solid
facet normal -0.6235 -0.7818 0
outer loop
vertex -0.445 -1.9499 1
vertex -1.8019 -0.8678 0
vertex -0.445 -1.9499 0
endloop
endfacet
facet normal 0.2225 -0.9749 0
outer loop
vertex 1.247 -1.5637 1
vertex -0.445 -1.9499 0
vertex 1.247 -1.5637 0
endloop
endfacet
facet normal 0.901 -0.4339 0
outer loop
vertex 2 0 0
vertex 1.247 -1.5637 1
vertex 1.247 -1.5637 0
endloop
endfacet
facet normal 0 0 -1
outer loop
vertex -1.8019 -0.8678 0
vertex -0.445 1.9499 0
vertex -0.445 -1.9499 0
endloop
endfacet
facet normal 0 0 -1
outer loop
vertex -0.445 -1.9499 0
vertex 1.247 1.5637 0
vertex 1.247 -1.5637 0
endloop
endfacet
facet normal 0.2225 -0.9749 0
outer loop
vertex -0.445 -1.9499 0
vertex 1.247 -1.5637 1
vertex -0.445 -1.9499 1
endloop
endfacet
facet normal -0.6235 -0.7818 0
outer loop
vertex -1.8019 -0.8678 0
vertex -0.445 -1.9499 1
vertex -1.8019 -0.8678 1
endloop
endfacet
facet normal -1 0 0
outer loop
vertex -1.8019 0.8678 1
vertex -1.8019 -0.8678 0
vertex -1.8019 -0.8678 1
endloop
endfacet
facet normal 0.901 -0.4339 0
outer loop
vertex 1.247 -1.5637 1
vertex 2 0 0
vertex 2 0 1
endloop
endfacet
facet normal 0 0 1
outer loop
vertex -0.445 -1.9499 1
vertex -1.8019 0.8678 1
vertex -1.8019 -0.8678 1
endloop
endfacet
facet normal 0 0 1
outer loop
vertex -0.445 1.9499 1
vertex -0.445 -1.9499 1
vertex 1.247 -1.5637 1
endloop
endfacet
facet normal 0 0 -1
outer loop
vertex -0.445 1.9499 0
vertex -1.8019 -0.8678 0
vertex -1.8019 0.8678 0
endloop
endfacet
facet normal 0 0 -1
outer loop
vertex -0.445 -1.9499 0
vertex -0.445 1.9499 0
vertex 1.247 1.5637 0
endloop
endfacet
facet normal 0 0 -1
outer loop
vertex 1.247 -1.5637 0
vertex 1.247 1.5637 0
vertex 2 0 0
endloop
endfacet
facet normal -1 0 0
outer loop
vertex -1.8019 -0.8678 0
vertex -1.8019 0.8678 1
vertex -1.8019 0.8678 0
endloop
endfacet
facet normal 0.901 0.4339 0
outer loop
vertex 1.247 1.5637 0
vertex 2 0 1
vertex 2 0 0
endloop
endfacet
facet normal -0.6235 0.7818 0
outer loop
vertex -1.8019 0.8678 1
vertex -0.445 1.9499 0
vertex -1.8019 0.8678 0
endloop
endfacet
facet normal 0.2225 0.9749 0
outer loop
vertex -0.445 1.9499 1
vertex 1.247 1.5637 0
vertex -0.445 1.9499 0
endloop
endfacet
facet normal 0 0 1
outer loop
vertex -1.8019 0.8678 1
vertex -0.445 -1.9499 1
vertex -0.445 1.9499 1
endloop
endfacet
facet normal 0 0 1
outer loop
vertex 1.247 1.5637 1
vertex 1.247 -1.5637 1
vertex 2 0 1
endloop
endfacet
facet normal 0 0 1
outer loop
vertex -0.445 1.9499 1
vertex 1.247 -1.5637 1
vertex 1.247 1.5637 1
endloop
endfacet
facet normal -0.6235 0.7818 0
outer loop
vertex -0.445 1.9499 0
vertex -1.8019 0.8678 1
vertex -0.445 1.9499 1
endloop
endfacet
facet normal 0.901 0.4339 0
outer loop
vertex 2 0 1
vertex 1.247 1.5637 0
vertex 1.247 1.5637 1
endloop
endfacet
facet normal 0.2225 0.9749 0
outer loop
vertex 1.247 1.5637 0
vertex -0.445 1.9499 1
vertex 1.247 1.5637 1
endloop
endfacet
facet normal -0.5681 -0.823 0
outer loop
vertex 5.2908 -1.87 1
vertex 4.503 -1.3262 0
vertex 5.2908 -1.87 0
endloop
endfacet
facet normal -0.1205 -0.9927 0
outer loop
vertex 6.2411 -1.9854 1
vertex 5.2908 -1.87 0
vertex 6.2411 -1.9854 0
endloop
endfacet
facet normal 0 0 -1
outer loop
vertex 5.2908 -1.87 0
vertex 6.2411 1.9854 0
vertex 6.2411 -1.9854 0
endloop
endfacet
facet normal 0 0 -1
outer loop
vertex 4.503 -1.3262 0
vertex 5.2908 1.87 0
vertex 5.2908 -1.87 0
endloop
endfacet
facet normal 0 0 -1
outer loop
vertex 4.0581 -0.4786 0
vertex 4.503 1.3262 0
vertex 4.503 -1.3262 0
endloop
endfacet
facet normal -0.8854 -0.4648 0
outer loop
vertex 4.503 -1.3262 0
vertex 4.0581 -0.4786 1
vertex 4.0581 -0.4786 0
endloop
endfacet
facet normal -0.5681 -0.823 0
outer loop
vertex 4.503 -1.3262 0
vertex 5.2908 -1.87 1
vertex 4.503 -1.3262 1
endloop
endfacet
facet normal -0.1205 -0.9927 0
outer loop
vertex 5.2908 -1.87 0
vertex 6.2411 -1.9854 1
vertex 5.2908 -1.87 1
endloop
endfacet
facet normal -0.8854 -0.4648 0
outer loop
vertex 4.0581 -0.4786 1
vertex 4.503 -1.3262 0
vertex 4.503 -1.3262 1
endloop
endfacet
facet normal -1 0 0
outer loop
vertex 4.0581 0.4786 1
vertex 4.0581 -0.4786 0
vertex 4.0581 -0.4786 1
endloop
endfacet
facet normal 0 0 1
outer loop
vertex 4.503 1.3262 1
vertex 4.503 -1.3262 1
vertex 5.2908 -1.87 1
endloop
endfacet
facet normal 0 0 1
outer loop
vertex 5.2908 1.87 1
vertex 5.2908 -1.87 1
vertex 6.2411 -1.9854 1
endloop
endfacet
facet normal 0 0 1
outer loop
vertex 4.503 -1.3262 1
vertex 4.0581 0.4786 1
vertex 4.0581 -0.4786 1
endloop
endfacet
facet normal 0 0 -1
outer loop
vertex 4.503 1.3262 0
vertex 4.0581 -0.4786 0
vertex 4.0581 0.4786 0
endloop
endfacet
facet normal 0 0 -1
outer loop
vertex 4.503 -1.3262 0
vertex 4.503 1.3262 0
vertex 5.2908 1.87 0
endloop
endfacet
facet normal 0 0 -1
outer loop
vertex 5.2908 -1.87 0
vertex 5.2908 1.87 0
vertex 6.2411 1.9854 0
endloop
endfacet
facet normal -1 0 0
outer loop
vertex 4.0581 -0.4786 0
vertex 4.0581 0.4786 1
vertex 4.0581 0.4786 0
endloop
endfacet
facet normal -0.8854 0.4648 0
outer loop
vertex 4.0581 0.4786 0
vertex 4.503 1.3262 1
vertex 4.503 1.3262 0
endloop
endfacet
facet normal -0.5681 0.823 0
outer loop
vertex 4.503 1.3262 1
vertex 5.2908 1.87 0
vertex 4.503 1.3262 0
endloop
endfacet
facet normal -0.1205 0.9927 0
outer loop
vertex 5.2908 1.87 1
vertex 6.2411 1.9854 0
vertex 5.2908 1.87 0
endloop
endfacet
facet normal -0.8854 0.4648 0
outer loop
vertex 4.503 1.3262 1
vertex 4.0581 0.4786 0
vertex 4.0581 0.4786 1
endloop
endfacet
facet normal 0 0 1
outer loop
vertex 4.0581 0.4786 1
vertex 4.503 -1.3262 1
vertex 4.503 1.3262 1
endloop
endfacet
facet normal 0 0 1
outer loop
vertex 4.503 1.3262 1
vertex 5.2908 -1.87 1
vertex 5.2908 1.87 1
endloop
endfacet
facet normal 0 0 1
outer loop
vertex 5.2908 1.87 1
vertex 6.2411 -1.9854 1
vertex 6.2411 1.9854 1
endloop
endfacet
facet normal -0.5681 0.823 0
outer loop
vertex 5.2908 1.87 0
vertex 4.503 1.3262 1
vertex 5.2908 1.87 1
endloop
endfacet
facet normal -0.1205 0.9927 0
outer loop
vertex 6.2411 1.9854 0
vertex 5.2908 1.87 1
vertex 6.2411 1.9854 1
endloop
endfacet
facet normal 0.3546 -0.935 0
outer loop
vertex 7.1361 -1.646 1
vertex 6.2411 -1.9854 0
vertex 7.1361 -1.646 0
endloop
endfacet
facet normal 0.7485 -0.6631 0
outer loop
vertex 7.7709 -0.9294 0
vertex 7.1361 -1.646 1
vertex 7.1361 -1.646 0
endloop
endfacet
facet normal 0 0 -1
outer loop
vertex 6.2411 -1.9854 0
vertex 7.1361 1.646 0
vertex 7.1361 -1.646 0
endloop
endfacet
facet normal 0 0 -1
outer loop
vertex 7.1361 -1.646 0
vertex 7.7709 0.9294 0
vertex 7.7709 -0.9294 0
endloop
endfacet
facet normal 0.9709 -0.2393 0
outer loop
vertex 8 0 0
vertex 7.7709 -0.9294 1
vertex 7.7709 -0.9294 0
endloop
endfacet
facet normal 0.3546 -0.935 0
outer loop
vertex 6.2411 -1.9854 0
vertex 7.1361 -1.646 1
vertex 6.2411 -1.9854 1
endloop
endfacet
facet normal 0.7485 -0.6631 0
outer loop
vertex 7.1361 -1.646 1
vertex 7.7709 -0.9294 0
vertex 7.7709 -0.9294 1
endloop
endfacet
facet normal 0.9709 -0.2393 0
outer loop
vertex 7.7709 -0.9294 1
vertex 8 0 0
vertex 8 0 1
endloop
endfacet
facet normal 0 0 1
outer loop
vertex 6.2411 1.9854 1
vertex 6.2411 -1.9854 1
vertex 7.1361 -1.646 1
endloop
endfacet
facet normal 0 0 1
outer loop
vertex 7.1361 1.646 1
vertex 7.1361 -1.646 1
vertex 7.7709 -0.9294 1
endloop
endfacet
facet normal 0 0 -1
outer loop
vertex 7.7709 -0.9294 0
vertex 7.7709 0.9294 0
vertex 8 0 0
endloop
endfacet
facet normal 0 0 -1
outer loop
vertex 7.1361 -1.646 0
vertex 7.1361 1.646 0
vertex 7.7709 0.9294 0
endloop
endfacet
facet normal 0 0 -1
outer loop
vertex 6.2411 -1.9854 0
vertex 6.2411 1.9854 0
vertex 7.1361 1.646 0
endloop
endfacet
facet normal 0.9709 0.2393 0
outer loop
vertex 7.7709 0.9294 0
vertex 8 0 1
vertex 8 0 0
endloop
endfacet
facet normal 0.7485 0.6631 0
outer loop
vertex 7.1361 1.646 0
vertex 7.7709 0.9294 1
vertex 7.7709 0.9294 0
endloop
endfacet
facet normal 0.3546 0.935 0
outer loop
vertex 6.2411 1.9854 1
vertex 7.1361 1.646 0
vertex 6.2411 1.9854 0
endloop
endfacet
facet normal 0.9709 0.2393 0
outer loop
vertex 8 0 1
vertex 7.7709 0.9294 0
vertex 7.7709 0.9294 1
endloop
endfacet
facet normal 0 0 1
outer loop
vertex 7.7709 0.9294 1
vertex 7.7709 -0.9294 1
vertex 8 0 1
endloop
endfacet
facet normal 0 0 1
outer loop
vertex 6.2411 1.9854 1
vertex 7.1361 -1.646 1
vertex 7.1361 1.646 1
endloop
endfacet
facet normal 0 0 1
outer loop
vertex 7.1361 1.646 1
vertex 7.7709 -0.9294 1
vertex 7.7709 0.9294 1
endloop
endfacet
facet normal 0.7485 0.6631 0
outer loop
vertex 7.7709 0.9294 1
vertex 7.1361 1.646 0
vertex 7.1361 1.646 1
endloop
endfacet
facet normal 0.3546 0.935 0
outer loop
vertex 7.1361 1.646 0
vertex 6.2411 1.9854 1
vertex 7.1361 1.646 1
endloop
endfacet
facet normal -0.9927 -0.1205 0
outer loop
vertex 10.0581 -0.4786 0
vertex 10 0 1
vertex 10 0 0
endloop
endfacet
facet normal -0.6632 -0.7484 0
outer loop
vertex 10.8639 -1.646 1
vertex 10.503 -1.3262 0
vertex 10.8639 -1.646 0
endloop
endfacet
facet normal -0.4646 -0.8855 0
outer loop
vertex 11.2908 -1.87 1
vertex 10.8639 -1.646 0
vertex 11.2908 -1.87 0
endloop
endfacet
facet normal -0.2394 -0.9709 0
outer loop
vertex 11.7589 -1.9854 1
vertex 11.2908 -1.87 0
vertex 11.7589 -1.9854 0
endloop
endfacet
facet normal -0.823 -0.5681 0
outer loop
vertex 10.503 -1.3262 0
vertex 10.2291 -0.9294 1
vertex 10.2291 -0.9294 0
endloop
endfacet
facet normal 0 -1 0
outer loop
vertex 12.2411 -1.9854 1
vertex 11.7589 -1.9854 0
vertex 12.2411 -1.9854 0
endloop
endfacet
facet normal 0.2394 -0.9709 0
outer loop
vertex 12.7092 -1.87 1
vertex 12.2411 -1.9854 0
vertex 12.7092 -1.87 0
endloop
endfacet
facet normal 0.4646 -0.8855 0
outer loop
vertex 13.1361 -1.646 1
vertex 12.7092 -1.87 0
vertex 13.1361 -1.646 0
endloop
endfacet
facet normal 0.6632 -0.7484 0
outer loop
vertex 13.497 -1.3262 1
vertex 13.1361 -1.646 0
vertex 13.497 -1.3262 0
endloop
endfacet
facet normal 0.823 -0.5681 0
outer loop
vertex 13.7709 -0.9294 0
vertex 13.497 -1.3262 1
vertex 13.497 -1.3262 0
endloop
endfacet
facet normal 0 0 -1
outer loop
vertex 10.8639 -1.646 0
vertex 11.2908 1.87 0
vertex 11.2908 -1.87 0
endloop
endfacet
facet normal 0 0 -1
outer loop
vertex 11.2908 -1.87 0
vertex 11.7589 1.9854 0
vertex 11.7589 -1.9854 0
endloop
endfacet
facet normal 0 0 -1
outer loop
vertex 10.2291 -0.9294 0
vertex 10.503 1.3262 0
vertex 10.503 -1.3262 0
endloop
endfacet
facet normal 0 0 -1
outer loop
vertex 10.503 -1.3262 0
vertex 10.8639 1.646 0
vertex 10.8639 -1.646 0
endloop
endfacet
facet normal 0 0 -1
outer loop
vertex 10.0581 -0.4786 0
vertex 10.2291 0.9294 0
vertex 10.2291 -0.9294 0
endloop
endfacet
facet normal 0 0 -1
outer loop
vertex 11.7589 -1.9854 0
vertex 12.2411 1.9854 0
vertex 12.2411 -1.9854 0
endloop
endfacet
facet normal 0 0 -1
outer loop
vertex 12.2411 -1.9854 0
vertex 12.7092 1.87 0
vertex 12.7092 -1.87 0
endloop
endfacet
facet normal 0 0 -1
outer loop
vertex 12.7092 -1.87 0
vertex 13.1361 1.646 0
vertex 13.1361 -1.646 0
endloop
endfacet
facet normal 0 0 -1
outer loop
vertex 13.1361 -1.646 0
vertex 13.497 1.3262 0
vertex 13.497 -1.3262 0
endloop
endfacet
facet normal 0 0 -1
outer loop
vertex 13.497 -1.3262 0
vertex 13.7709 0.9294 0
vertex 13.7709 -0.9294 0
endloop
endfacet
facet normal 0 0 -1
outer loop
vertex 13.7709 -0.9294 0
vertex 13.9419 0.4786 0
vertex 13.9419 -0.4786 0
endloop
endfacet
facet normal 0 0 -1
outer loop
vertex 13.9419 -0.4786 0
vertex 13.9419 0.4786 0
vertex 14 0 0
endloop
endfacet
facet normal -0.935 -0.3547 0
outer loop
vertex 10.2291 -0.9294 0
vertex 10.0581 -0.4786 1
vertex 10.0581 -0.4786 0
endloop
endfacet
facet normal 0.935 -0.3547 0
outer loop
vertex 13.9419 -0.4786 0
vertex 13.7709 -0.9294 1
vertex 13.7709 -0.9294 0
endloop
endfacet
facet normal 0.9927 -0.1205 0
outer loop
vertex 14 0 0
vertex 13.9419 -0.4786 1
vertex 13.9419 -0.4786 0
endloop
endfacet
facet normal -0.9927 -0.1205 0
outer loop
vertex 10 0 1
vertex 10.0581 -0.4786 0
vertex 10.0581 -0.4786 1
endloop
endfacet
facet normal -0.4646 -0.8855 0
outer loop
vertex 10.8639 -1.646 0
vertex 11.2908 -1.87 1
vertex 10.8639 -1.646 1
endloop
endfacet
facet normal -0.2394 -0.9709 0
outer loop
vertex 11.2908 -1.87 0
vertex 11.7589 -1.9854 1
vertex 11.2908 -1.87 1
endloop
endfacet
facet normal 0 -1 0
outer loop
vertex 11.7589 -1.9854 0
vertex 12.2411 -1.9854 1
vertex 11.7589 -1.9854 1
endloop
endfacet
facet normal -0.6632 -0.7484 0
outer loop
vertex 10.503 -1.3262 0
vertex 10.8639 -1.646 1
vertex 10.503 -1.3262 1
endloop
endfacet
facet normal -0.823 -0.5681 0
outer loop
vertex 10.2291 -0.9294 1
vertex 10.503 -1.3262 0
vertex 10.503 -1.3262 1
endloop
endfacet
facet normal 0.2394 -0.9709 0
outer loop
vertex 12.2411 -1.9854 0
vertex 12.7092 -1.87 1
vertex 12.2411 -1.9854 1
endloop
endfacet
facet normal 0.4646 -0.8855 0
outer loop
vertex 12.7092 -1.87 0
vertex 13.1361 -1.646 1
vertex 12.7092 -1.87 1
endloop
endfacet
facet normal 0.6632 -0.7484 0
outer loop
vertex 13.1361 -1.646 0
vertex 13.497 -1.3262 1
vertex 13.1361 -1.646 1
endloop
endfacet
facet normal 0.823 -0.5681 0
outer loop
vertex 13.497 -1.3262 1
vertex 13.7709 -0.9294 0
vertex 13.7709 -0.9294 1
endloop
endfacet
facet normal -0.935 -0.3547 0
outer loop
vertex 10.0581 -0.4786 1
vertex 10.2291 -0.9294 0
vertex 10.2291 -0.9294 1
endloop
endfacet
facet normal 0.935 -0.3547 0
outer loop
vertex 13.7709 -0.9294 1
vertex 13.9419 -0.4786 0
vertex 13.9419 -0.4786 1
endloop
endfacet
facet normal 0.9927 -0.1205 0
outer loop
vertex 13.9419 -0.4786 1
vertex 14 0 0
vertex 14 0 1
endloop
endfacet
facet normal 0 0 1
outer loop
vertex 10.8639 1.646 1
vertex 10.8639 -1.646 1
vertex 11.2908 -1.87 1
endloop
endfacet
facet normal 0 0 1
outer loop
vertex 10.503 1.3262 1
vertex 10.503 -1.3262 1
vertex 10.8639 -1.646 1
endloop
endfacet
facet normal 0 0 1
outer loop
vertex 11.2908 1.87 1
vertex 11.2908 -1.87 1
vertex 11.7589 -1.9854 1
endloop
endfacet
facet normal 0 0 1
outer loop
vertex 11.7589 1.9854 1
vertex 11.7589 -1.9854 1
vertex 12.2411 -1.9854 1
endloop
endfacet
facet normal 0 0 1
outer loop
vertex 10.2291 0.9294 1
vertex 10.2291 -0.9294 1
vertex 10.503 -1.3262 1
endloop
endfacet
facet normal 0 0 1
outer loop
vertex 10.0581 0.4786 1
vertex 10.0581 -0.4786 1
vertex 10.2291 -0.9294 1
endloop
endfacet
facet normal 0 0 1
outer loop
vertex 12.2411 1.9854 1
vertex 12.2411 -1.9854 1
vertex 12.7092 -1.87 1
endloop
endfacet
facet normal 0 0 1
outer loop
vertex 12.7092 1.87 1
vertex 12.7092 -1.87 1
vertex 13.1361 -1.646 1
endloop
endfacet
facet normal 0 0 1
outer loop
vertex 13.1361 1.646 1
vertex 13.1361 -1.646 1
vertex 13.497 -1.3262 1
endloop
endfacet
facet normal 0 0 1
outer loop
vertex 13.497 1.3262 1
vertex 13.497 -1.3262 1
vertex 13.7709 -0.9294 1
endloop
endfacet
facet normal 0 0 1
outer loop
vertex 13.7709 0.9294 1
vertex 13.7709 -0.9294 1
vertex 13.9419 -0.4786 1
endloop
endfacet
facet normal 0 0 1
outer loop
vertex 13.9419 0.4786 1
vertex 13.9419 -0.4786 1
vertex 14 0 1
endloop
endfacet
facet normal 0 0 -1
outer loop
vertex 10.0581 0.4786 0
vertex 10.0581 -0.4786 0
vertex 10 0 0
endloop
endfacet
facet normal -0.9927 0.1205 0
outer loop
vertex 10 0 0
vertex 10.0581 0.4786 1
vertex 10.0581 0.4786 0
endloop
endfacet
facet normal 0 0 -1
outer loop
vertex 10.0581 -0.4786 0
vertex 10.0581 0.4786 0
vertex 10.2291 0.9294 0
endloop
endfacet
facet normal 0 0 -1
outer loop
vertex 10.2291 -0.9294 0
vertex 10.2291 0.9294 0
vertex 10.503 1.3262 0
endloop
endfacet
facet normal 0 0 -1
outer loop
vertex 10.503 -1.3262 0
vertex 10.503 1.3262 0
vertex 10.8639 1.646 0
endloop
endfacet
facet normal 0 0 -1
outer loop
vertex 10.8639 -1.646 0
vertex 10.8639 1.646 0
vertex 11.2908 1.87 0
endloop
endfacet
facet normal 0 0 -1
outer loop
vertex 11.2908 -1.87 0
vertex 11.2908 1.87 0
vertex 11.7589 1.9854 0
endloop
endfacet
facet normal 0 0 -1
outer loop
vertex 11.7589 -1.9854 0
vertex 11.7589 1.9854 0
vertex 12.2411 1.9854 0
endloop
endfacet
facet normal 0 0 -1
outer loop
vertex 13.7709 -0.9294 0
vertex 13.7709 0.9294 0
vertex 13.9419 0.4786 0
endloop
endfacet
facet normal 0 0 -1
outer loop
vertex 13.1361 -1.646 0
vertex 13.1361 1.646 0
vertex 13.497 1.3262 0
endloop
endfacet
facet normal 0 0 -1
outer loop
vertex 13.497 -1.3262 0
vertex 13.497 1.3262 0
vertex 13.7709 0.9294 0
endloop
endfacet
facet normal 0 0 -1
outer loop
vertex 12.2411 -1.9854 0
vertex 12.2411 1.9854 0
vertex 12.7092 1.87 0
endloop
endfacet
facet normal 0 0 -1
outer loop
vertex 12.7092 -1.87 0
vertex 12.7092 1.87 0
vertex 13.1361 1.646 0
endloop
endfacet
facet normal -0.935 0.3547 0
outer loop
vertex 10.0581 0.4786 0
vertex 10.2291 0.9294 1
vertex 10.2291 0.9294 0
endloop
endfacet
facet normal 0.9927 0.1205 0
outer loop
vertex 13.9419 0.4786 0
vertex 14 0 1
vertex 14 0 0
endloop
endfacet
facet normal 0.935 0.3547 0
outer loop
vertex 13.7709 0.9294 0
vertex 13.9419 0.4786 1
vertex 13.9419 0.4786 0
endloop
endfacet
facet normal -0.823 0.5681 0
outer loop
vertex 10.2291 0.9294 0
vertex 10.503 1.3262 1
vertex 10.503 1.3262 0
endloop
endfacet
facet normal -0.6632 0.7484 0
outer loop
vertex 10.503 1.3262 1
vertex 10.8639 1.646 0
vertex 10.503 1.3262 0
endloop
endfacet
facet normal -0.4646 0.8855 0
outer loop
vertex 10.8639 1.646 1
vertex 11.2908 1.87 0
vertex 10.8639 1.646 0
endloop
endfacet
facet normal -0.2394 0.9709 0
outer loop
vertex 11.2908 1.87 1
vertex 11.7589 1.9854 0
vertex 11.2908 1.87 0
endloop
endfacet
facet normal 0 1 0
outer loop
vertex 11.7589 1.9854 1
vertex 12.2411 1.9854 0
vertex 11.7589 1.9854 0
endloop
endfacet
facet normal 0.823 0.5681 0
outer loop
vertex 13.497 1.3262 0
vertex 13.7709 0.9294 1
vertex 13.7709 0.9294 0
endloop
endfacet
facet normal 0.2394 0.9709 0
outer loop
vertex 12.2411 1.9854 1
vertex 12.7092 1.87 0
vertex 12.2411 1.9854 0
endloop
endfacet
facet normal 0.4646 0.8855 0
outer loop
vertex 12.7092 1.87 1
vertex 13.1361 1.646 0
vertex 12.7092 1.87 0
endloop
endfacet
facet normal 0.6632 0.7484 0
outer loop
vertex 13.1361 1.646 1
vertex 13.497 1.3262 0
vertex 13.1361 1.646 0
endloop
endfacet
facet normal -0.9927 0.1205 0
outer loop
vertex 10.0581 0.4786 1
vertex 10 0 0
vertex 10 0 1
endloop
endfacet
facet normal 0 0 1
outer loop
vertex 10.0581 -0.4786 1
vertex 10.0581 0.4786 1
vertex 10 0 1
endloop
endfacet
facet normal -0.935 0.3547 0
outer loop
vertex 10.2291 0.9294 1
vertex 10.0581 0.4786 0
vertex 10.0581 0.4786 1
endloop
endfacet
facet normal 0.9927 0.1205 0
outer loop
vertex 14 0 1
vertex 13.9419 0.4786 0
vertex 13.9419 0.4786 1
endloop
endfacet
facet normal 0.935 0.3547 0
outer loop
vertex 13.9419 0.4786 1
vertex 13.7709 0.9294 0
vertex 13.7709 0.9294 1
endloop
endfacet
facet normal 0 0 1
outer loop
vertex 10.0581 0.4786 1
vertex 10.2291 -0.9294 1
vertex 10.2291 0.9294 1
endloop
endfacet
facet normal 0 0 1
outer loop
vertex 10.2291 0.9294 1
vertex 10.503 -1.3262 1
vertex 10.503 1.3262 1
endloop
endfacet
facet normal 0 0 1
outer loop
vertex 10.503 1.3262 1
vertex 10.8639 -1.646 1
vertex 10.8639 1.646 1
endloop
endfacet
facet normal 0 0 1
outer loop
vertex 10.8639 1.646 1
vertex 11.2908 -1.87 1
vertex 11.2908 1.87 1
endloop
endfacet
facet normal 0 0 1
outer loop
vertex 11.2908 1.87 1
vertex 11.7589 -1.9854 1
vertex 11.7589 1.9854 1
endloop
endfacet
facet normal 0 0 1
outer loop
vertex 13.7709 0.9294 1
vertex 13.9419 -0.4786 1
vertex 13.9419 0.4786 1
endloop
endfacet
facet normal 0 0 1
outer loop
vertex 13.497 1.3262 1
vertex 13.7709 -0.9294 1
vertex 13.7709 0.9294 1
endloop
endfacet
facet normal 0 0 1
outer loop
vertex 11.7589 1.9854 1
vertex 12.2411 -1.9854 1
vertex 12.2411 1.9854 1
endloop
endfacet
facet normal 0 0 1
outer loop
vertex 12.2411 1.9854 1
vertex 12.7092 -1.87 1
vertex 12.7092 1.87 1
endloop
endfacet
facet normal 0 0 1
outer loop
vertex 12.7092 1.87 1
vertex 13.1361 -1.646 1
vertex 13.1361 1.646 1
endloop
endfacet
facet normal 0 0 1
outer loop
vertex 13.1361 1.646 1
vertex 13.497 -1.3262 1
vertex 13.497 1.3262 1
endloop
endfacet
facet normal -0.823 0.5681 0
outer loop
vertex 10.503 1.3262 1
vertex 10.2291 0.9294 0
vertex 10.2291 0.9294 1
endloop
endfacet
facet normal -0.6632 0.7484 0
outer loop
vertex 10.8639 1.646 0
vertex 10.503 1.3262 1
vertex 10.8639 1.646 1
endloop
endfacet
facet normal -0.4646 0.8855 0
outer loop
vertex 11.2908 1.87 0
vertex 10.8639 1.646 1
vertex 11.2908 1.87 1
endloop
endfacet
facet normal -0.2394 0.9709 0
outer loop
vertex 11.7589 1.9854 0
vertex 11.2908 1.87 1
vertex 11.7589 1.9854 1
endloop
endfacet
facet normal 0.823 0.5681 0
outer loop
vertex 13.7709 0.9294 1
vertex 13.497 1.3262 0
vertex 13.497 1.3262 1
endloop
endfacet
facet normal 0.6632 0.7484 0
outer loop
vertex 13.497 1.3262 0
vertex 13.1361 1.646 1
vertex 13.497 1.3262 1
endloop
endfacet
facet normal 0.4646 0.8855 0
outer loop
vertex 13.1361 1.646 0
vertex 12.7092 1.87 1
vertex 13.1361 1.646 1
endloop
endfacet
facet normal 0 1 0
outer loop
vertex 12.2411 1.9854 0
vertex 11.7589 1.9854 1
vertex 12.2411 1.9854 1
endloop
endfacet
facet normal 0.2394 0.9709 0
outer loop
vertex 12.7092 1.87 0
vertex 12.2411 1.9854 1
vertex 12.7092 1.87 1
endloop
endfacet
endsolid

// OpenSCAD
// file: ../openscad/resolution.scad
//////////////////////////////////////////////////////////////////////
// LibFile: resolution.scad
//   Shared Forge geometry-resolution tokens and OpenSCAD tessellation policy.
//////////////////////////////////////////////////////////////////////


// Function: FG_RES_LOW()
// Synopsis: Returns the fast interactive geometry-resolution token.
function FG_RES_LOW() = "low";


// Function: FG_RES_HIGH()
// Synopsis: Returns the normal design/render geometry-resolution token.
function FG_RES_HIGH() = "high";


// Function: FG_RES_EXPORT()
// Synopsis: Returns the production mesh geometry-resolution token.
function FG_RES_EXPORT() = "export";


// Module: fg_res_apply()
// Synopsis: Applies Forge's OpenSCAD tessellation policy to child geometry.
// Description:
//   Callers select semantic geometry resolution. Forge owns the matching
//   OpenSCAD $fa/$fs settings. $fn is reset to automatic mode so a caller's
//   global fixed segment count cannot override this policy.
// Arguments:
//   resolution = FG_RES_LOW(), FG_RES_HIGH() or FG_RES_EXPORT().
module fg_res_apply(
    resolution = FG_RES_HIGH()
) {
    assert(
        _fg_res_is_valid(resolution),
        str("Unsupported Forge resolution: ", resolution)
    );

    let(
        $fn = 0,
        $fa = _fg_res_fa_deg(resolution),
        $fs = _fg_res_fs_mm(resolution)
    )
        children();
}


function _fg_res_is_valid(resolution) =
    resolution == FG_RES_LOW()
    || resolution == FG_RES_HIGH()
    || resolution == FG_RES_EXPORT();


function _fg_res_fa_deg(resolution) =
    resolution == FG_RES_LOW()
        ? 12
        : resolution == FG_RES_HIGH()
            ? 6
            : 3;


function _fg_res_fs_mm(resolution) =
    resolution == FG_RES_LOW()
        ? 2
        : resolution == FG_RES_HIGH()
            ? 1
            : 0.5;
// main file
use <../openscad/resolution.scad>


module assert_resolution(expected_fa, expected_fs) {
    assert($fn == 0, "Forge resolution must use automatic fragment count");
    assert($fa == expected_fa, str("Unexpected $fa: ", $fa));
    assert($fs == expected_fs, str("Unexpected $fs: ", $fs));

    cylinder(d = 4, h = 1);
}


assert(FG_RES_LOW() == "low");
assert(FG_RES_HIGH() == "high");
assert(FG_RES_EXPORT() == "export");

fg_res_apply(FG_RES_LOW())
    assert_resolution(12, 2);

translate([6, 0, 0])
    fg_res_apply(FG_RES_HIGH())
        assert_resolution(6, 1);

translate([12, 0, 0])
    fg_res_apply(FG_RES_EXPORT())
        assert_resolution(3, 0.5);
